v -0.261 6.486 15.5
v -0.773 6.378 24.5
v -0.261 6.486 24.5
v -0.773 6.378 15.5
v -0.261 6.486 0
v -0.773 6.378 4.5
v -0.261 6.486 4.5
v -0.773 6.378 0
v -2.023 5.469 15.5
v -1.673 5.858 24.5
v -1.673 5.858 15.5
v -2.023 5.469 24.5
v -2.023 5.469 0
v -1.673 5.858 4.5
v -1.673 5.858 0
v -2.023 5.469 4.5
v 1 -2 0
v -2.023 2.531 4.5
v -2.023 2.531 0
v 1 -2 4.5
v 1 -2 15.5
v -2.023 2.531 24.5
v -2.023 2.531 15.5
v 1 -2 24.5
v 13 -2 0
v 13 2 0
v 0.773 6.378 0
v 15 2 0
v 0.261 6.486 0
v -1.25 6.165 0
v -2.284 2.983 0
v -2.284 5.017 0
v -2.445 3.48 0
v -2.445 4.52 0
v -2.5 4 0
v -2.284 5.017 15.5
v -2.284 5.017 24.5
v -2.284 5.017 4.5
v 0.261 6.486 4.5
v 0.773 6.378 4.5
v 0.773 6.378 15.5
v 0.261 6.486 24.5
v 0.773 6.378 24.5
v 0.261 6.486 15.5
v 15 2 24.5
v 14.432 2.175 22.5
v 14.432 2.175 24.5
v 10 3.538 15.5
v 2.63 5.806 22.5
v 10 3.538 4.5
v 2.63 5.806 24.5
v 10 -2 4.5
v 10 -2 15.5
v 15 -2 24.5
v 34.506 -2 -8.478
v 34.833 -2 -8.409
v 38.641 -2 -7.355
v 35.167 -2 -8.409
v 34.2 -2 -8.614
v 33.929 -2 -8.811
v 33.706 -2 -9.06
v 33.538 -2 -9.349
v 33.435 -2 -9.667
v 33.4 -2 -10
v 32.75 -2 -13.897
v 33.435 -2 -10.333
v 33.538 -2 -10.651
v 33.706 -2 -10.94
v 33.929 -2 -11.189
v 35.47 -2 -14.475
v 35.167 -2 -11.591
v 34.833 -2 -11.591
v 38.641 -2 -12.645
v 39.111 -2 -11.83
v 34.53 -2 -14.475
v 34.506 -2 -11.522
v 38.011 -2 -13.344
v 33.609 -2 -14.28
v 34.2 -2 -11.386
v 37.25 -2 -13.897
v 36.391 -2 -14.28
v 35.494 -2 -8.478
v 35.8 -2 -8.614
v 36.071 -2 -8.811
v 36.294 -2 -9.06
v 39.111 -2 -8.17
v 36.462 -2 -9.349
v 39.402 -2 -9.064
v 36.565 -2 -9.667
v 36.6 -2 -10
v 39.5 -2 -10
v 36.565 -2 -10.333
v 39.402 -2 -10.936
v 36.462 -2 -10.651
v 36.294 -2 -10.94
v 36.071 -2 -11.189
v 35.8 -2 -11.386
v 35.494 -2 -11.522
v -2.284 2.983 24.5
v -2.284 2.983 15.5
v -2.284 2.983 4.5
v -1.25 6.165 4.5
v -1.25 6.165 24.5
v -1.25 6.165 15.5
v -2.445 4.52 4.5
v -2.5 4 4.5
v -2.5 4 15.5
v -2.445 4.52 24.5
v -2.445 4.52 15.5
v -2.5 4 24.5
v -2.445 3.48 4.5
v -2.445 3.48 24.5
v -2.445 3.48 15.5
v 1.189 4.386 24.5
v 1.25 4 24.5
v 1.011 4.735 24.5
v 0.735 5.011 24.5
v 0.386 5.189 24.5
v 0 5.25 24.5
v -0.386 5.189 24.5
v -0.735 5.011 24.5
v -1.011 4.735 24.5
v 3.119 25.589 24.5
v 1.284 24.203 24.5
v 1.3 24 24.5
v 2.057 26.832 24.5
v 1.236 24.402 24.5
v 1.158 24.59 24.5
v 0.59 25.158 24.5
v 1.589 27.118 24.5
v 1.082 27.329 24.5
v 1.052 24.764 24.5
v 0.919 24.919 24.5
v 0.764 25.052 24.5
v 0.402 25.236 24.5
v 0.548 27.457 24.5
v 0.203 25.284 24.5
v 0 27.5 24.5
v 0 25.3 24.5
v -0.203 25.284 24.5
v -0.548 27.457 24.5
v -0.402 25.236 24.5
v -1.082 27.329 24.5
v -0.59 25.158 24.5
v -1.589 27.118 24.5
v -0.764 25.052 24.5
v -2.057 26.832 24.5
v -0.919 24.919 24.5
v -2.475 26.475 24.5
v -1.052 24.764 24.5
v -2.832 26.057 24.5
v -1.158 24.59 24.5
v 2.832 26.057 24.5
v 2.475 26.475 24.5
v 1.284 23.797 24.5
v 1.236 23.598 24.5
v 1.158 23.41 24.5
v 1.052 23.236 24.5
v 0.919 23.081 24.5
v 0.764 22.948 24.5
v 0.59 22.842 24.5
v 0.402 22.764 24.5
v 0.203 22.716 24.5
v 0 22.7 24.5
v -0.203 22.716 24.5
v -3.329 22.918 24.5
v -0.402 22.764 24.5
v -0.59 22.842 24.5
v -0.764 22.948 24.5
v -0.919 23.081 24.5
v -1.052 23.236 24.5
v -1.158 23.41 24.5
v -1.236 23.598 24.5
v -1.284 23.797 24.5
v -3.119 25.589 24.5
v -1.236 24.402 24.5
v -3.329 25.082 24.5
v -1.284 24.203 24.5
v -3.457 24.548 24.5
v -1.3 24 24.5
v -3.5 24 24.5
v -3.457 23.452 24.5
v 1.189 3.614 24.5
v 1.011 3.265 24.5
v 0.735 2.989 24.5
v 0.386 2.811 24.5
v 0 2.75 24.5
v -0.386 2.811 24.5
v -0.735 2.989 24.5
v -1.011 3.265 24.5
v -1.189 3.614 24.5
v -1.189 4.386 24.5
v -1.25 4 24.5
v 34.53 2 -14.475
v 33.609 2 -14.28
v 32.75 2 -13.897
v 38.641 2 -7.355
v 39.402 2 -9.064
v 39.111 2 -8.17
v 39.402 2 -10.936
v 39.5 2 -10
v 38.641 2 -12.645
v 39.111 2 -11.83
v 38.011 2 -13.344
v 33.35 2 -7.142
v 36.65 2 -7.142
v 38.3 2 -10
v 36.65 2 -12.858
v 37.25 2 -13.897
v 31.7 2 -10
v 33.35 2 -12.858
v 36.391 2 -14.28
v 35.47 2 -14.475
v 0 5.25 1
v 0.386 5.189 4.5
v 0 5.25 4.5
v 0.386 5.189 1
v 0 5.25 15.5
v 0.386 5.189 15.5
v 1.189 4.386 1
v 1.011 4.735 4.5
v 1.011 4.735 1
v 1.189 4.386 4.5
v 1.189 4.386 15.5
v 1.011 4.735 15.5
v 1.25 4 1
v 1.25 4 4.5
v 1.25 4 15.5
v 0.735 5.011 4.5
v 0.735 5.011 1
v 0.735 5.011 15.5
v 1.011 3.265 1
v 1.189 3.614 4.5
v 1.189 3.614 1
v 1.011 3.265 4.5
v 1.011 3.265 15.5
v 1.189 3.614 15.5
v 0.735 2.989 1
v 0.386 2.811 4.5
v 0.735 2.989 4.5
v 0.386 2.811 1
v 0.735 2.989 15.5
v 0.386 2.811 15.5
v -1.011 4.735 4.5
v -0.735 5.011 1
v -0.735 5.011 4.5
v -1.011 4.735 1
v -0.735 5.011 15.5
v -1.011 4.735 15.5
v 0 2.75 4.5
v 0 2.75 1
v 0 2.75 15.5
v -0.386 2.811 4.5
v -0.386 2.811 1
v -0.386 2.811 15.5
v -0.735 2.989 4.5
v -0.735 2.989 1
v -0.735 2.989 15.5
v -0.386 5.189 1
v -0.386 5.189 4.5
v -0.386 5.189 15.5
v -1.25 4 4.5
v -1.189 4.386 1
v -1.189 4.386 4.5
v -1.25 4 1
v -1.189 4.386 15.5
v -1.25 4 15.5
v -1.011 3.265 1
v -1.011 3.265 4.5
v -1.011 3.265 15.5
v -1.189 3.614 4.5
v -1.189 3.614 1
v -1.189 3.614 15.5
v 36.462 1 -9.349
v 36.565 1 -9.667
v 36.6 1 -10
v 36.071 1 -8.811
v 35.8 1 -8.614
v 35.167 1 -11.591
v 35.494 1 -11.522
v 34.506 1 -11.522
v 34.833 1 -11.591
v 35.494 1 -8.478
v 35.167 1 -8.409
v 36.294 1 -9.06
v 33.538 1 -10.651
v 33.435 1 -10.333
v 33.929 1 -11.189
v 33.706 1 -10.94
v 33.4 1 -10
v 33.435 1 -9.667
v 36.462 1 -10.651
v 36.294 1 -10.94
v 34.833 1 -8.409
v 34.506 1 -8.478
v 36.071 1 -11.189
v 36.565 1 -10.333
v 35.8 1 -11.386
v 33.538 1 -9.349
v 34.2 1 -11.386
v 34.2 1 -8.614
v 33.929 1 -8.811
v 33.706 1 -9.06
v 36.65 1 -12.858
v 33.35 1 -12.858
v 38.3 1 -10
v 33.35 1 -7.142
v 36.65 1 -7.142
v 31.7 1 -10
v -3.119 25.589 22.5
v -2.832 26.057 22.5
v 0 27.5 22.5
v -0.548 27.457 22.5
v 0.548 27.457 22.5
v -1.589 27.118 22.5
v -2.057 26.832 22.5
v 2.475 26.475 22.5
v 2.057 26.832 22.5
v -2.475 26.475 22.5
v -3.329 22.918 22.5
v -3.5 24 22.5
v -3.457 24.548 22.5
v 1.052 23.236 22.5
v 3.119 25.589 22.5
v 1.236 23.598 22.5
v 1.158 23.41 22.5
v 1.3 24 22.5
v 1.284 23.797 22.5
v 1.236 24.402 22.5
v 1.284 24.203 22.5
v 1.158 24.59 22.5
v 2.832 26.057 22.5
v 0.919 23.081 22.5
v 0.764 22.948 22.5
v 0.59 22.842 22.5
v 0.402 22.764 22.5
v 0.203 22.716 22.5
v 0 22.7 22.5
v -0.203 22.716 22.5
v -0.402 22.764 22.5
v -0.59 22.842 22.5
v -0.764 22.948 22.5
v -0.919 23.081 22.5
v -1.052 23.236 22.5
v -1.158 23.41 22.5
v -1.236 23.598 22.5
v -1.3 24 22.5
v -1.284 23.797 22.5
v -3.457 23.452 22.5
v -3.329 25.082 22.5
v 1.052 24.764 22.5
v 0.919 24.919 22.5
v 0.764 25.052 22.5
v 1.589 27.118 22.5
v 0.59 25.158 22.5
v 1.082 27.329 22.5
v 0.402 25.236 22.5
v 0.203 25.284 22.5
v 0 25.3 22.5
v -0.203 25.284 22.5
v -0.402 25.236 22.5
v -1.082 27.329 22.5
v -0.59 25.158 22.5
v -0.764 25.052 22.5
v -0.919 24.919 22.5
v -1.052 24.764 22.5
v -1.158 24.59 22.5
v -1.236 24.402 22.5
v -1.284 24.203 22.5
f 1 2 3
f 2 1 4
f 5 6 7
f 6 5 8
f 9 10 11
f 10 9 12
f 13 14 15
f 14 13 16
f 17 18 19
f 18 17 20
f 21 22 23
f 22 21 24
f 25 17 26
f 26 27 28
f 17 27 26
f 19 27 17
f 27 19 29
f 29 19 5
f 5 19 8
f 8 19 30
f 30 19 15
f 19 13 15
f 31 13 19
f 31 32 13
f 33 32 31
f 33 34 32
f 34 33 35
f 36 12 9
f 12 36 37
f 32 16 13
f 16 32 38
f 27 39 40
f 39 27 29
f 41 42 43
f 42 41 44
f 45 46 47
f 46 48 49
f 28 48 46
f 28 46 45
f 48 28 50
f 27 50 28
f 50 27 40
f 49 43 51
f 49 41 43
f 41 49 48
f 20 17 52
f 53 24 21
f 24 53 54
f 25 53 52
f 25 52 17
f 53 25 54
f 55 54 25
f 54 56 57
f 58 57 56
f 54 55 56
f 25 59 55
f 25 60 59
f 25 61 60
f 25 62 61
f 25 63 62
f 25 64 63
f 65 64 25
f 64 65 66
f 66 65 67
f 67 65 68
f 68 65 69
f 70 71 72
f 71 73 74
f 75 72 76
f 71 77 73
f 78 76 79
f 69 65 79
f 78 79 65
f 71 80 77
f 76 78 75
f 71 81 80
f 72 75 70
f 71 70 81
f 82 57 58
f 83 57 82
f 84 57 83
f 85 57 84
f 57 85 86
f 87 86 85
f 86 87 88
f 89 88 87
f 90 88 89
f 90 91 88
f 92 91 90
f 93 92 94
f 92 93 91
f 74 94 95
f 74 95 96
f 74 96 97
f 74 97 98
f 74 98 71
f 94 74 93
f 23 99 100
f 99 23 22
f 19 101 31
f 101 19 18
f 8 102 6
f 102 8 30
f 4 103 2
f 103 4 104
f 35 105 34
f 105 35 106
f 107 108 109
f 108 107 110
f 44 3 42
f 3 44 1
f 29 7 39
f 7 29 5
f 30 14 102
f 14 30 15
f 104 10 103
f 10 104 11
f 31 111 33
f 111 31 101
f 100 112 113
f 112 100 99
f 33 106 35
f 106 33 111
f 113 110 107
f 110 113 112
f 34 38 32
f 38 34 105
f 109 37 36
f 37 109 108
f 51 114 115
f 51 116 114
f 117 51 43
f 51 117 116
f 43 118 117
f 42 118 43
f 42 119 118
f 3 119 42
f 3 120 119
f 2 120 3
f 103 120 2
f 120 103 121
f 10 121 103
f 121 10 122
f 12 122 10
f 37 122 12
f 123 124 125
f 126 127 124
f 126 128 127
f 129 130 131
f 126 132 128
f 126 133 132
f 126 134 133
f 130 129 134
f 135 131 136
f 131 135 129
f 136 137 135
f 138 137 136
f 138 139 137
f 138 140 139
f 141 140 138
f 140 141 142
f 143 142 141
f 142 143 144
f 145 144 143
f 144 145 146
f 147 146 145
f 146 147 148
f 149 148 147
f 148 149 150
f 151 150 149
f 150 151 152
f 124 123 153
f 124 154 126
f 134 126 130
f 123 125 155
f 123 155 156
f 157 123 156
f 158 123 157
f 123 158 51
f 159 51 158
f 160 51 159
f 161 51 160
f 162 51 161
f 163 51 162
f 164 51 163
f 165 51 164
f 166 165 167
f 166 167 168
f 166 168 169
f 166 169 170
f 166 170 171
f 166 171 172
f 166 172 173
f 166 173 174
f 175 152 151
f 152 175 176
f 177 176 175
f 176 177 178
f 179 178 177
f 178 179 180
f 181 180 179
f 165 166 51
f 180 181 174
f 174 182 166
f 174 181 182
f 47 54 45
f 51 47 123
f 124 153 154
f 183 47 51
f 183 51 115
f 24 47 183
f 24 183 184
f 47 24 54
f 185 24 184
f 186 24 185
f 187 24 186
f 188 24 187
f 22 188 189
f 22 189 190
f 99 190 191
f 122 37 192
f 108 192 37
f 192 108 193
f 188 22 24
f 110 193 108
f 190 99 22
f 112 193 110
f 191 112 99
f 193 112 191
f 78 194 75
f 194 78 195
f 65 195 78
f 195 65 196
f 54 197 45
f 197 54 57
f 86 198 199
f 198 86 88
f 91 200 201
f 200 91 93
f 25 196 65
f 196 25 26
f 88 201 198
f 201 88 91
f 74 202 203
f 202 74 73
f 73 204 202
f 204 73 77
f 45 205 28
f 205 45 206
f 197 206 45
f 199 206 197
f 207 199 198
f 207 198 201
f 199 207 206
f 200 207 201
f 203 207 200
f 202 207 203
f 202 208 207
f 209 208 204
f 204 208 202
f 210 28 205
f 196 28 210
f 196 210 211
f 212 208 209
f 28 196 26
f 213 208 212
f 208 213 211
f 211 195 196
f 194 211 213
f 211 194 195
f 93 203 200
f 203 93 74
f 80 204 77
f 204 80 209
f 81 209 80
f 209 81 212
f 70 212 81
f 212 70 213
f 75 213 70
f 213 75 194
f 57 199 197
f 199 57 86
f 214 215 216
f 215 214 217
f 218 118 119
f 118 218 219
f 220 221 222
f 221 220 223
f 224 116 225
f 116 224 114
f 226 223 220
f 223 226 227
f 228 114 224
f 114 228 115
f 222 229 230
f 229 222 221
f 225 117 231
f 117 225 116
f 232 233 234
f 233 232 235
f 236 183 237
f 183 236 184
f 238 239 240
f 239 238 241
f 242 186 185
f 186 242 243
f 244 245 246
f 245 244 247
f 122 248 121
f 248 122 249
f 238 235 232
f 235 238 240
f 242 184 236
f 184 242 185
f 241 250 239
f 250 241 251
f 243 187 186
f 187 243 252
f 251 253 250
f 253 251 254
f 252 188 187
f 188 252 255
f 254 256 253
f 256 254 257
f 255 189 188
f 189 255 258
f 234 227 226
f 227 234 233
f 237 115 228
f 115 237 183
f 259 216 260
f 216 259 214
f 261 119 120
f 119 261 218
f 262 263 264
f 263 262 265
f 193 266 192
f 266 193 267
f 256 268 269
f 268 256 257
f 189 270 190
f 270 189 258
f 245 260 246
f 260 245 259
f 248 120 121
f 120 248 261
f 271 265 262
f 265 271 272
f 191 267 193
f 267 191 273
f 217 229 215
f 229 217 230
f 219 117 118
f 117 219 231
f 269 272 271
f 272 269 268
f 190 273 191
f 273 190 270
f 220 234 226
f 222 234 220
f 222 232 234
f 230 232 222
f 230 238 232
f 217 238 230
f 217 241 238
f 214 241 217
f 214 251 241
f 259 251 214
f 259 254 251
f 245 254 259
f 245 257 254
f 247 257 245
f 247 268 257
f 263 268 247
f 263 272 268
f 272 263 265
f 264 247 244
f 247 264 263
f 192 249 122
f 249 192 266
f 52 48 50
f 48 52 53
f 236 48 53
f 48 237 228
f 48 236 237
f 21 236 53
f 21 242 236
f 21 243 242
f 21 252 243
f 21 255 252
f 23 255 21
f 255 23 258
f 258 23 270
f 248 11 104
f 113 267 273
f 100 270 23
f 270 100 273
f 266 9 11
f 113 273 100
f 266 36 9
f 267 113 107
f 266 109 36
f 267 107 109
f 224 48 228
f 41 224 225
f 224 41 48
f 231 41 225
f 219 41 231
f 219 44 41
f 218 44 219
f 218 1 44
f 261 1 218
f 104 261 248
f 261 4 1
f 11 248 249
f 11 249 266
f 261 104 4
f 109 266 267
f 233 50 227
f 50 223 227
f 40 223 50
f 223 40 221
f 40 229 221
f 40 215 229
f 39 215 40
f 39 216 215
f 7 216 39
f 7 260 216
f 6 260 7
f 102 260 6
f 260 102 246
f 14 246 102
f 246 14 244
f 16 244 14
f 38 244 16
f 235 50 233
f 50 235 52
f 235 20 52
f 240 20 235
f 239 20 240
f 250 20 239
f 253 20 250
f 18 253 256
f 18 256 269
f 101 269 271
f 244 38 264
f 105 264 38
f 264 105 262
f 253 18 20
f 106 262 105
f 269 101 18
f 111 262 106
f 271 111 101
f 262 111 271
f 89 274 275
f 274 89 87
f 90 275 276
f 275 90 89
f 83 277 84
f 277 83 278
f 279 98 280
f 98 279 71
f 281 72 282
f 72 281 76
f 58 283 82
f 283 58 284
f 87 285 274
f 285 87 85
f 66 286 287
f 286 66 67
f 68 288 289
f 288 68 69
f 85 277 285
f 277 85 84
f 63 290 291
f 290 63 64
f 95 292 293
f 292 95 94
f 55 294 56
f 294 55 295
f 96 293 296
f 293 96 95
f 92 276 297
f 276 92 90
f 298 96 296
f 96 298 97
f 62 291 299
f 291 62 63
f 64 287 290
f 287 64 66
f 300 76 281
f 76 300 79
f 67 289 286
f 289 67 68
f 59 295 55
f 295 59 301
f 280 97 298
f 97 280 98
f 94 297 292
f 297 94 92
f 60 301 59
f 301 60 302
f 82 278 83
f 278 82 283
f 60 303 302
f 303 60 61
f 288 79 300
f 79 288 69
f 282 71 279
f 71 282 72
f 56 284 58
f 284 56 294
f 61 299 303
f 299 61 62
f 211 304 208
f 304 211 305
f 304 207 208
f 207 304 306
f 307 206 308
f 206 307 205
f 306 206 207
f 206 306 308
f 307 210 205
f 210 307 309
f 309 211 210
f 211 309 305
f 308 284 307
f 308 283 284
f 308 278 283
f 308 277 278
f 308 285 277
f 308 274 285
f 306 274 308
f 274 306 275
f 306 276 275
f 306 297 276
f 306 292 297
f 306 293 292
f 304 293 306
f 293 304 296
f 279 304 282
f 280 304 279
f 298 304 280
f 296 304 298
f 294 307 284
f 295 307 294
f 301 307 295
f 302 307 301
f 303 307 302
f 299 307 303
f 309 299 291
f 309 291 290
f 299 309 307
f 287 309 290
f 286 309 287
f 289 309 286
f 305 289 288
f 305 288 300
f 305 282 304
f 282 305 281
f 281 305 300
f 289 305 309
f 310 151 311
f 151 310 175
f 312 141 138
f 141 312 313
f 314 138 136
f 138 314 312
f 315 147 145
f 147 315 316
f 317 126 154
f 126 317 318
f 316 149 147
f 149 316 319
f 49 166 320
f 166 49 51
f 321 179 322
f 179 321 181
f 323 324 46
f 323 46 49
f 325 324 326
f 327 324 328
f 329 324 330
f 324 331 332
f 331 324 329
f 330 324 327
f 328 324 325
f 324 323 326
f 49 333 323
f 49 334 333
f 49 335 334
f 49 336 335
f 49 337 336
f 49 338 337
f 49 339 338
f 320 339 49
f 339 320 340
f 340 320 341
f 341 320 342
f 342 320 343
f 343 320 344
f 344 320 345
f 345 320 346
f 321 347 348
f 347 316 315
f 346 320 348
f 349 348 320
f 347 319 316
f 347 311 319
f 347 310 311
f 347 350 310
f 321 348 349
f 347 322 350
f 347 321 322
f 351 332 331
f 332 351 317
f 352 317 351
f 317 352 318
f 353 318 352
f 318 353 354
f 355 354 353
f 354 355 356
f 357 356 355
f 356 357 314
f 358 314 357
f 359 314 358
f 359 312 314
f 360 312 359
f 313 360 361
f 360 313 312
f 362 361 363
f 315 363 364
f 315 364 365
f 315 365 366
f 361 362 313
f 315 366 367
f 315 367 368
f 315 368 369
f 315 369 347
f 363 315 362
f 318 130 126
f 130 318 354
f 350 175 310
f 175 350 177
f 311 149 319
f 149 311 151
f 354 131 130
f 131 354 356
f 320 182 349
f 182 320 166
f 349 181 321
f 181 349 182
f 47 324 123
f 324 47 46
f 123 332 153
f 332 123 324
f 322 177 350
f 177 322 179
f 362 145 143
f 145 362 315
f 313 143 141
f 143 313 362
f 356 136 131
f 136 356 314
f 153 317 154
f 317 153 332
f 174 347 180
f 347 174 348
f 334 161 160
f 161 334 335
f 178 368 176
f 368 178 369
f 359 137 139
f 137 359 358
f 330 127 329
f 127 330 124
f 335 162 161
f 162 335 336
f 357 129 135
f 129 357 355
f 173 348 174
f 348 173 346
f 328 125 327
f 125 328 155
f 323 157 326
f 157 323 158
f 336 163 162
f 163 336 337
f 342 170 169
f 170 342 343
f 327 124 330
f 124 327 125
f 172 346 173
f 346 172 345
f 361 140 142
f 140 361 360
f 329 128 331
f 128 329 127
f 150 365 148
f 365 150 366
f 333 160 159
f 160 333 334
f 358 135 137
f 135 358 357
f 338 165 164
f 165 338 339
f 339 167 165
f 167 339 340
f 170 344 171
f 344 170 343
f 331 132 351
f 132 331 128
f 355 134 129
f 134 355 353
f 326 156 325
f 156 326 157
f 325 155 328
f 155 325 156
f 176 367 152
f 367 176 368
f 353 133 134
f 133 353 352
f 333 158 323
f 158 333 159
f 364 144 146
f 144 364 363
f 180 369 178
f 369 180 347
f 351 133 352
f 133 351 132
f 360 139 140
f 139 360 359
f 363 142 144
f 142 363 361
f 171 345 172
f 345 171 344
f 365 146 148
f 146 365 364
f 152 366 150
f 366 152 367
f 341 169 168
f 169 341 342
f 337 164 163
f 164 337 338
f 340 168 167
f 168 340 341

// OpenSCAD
// file: ../parameters.scad
global_clearance = 0.5;

layer_thickness = 0.3;

//Main tube diameter - hole [mm]
main_tube_outer_diameter = 25.4;
main_tube_inner_diameter = 23.05;

// Nastavení parametrů rotoru

gliding_aggle = 14;         // tenhle úhel by se zřejmě v budoucnu měl počítat z požadované klouzavosti.

rotor_blade_AOA = 1.5;      // nastavení úhlu náběhu rotorového listu

// Rotor Auto-G2
rotor_blade_rod = true;  // generovat diru pro uhlikove tycky
rotor_blade_length = 400 - 15;   // délka rotorového listu
rotor_blade_depth = 45.5;     // hloubka rotorového listu


blade_mount_length = 30;

blade_mount_width = 17;
blade_mount_thickness = 4.6;
blade_mount_screw_offset = 5; // distance of first screw from rotor end

// Testovaci maly rotor

        /*
        rotor_blade_rod = false;
        rotor_blade_length = 145;   // délka rotorového listu
        rotor_blade_depth = 45.5 * (145/385);     // hloubka rotorového listu
        blade_mount_length = 20;
        blade_mount_width = 10;
        blade_mount_thickness = 4;
        */

// konec parametru pro testovaci maly rotor

rotor_height = 180;         // výška otočného kloubu rotoru nad hlavní trubkou vírníku (odhad)
rotor_blades_count = 2;
rotor_delta_angle = 12;
rotor_blade_thickness = 5.1;

rotor_blade_naca = 2412;
rotor_blade_parts_count = 3;

blade_transition_length = 10; // length of blade transition

blade_mount_screw_distance = (16.47+11.86)/2;

/* blade_shell_thickness = 0.4;
blade_shell_thickness_inner = 0.4;
blade_shell_thickness_wire = 0.4;
blade_infill_distance = 25;
blade_infill_overlap = 0; */

/// Nastaveni pro Slic3r
blade_shell_thickness = 0.45;
blade_shell_thickness_inner = 0.43;
blade_shell_thickness_wire = 0.45;
blade_infill_distance = 20;
blade_infill_overlap = 0;


//blade_rod_position = [rotor_blade_depth/4 + 5, 0, 0];
//blade_rod_position2 = [rotor_blade_depth/4 - 5, 0, 0];

//blade_rod_position = [15, 0, 0];
//blade_rod_position2 = [4, 0.3, 0];

blade_rod1_diameter = 2.58;
blade_rod2_diameter = 2.58;
blade_rod3_diameter = 2.13;

blade_rod1_position = [3.4, 0.3, 0];
blade_rod2_position = [rotor_blade_depth/4 - 4, 0.2, 0];
blade_rod3_position = [rotor_blade_depth/4 + 3.5, 0, 0];


rotor_head_width =  30;    //Rozměr 1 v nákresu
pilon_wall_thickness = 4.2;  // Rozměr 2 v nákresu
horizontal_screw_distance = 14.5;   // Rozměr 4 v nákresu
vertical_screw_distance = 12;       // rozměr 5 v nkresu
topscrew_distance_endofpilon = 5;

rotorhead_wall_thickness = 3; // sila tistenych dilu


bearing_outer_diameter = 10.2;    // Rozměr B1 v nákresu s přídavkem na toleranci otvoru
bearing_thickness = 4;        // Rozměr B2 v nákresu
//bearing_shaft_length = 19.5;    // Rozměr B3 v nákresu, Originalni hodnota 19.5
bearing_shaft_length = 20;    // Rozměr B3 v nákresu


// nastavení parametrů motoru

engine_angle = -8;
engine_diameter = 55;
engine_offset = 55;

engine_screws_radius = 15;
engine_holes_radius = (24 + 44)/4;
engine_shatf_hole_diameter = 13;

// screw length step - minimum difference in length between two types of screws
basic_screw_length = 5;

//Screw diameter and nut for M6 [mm]
M6_screw_diameter=6.5;
M6_head_diameter = 10+0.5;
M6_head_height = 6;
M6_nut_height = 4.9;
M6_nut_diameter = 11.8;
M6_nut_pocket = 10.4;

//Screw diameter and nut for M5 [mm]
M5_screw_diameter=5.5;
M5_head_height = 5;
M5_head_diameter = 13+0.5;
M5_nut_height = 4.5;
M5_nut_diameter = 9.4;
M5_nut_pocket = 8.4;

//Screw diameter and nut for M4 [mm]
M4_screw_diameter=4.5;
M4_screw_head_height = 4;
M4_nut_height = 3.2;
M4_nut_diameter = 8.4;
M4_nut_pocket = 7.5;

//Screw diameter and nut for M3 [mm]
M3_screw_diameter = 3.2;
M3_nut_height = 2.7;
M3_nut_diameter = 6.6;
M3_screw_head_height = 3;
M3_nut_pocket = 5.6;


//Screw diameter and nut for M2,5 [mm]
M2_5_screw_diameter = 2.7;
M2_5_nut_height = 2.3;
M2_5_nut_diameter = 6;
M2_5_nut_pocket = 5.1;

//Screw diameter and nut for M2 [mm]
M2_screw_diameter = 2.0;
M2_nut_height = 1.8;
M2_nut_diameter = 4.8;
M2_nut_pocket = 3.95;


blade_mount_screw = M2_screw_diameter;
blade_mount_nut = M2_nut_diameter;


//šroub servo
Servo_screw = 1.5;
Servo_nut_height = 1;
Servo_nut_diameter = 2.7;

tail_pipes_distance = 10.16*5;
tail_pipes_diameter = M4_screw_diameter;
tail_pipes_min_wall = 3;

elevator_pitch = 2;


/// ruder parametry

rudder_height = 150;
height_bottom_part = 130;
rudder_depth_max = 200;

below_rudder_height = 30;
rudder_depth = 60;

tail_airfoil_n = 80;




//center_of_gravity_position = [main_pilon_position - tan(gliding_aggle)*rotor_height, 0, 0];


base_patern = 10.16;
////podzvozek

radius_undercarriage = 25;
vzdalenost_x = tan(20) * 131;
vzdalenost_y = (131 - radius_undercarriage)/tan(79);
uhel_y = 90 - 20;
uhel_x = 90 - 79;

maximum_printable_size = 150;


////Pitotova trubice
Pitot_tube_diameter = 4.02 + 1;
Distance_hole_from_tube = 11.92;  //vzdálenost otvoru pro připevnění od samotné trubičky


////Vlečné zařízení
tow_ring_diameter = 20;
tow_ring_thickness = 5;
tow_ring_groove = 2;
tow_ring_hole_diameter = M3_screw_diameter;

////Simoniny parametry pro nosník rotoru
base_length = 290; //delka podlozky
base_split_position = [0, 150, base_length];
base_width = 70; //sirka podlozky - vnější šířka nosníku
base_thickness = 4; //vyska podlozky
base_patern = 10;
rantl_thickness = 4; //sirka steny podlozky
rantl_height = 8;
niy=4; //pocet der podelne


// Drazak motoru

motor_holder_height = base_patern * 5;
motor_holder_thickness = 4;
motor_holder_motor_height = 25;
motor_holder_side_mount_height = base_patern*2.5;
pilon_holder_side_mount_height = base_patern*4;


// Paraetry pilonu


// pilon_height = 250 - pilon_holder_side_mount_height;
pilon_height = 180 - pilon_holder_side_mount_height;
pilot_height_separation = 120 - pilon_holder_side_mount_height;
pilon_thickness = 3;
pilon_beam_width = 10;
pilon_base_length = 60;
pilon_ring_length = 40;
pilon_ring_thickness = 3;

pilon_top_width = 20;
pilon_top_length = 20;

pilon_ring_width = 45;
pilon_ring_height_rantl = 12+0.5;
pilon_ring_height = 3;

pilon_angle = atan2(pilon_height,(base_width-pilon_top_width)/2);
echo(pilon_angle);

pilon_bottom_angle = atan2(pilot_height_separation,(base_width-pilon_ring_width)/2-pilon_thickness*1.5);
echo(pilon_bottom_angle);
pilon_top_angle = atan2(pilon_height - pilot_height_separation,(pilon_ring_width - rotor_head_width)/2 - pilon_thickness - pilon_ring_thickness);
echo(pilon_top_angle);
// main file
// Drzak ocasni tyce pod podlozkou

include<../parameters.scad>

rear_wheel_holder_thickness = 4;
rear_wheel_holder_excentric = rear_wheel_holder_thickness/2+2;

module 888_3007(){
difference(){
    union(){
        hull(){
            translate([5, 0, 0]) cylinder(d = rear_wheel_holder_thickness, h = 10+10+5-0.5, $fn=$preview?10:30);
            translate([0, rear_wheel_holder_excentric, 0]) cylinder(d = rear_wheel_holder_thickness+1, h = 10+10+5-0.5, $fn=$preview?10:30);
            translate([1, -rear_wheel_holder_thickness/2, 0]) cube([15-1, rear_wheel_holder_thickness, 25-0.5]);
        }
        hull(){
            translate([15+20, 0, -10]) rotate([90, 0, 0]) cylinder(d = 9, h = rear_wheel_holder_thickness, $fn=$preview?10:30, center = true);
            translate([-2+15, -rear_wheel_holder_thickness/2, 0]) cube([2, rear_wheel_holder_thickness, 25-0.5]);
        }
    }
    translate([0, rear_wheel_holder_excentric, 0]) translate([0, 0, 1]) cylinder(d = 2.5, h=50, $fn = $preview?7:20);
    translate([0, 0, 5+5]) cube([20, 20, 11], center = true);
    translate([15+20, 0, -10]) rotate([90, 0, 0]) cylinder(d = M3_screw_diameter, h = 9, $fn=$preview?10:30, center = true);
    translate([15+20, 9, -10]) rotate([90, 0, 0]) cylinder(d = M3_nut_diameter, h = 8, $fn=6);


}
    translate([0, 0, 10+10+5+0.5-2-1]) difference(){
        hull(){
            translate([10, 0, 1]) cube([10, 2, 2], center = true);
            translate([0, 20 + rear_wheel_holder_excentric, 0]) cylinder(d = 7, h=2, $fn=40);
        }
        translate([0, 20 + rear_wheel_holder_excentric, 0]) cylinder(d = 2.6, h=2, $fn=40);
    }
}


888_3007();
